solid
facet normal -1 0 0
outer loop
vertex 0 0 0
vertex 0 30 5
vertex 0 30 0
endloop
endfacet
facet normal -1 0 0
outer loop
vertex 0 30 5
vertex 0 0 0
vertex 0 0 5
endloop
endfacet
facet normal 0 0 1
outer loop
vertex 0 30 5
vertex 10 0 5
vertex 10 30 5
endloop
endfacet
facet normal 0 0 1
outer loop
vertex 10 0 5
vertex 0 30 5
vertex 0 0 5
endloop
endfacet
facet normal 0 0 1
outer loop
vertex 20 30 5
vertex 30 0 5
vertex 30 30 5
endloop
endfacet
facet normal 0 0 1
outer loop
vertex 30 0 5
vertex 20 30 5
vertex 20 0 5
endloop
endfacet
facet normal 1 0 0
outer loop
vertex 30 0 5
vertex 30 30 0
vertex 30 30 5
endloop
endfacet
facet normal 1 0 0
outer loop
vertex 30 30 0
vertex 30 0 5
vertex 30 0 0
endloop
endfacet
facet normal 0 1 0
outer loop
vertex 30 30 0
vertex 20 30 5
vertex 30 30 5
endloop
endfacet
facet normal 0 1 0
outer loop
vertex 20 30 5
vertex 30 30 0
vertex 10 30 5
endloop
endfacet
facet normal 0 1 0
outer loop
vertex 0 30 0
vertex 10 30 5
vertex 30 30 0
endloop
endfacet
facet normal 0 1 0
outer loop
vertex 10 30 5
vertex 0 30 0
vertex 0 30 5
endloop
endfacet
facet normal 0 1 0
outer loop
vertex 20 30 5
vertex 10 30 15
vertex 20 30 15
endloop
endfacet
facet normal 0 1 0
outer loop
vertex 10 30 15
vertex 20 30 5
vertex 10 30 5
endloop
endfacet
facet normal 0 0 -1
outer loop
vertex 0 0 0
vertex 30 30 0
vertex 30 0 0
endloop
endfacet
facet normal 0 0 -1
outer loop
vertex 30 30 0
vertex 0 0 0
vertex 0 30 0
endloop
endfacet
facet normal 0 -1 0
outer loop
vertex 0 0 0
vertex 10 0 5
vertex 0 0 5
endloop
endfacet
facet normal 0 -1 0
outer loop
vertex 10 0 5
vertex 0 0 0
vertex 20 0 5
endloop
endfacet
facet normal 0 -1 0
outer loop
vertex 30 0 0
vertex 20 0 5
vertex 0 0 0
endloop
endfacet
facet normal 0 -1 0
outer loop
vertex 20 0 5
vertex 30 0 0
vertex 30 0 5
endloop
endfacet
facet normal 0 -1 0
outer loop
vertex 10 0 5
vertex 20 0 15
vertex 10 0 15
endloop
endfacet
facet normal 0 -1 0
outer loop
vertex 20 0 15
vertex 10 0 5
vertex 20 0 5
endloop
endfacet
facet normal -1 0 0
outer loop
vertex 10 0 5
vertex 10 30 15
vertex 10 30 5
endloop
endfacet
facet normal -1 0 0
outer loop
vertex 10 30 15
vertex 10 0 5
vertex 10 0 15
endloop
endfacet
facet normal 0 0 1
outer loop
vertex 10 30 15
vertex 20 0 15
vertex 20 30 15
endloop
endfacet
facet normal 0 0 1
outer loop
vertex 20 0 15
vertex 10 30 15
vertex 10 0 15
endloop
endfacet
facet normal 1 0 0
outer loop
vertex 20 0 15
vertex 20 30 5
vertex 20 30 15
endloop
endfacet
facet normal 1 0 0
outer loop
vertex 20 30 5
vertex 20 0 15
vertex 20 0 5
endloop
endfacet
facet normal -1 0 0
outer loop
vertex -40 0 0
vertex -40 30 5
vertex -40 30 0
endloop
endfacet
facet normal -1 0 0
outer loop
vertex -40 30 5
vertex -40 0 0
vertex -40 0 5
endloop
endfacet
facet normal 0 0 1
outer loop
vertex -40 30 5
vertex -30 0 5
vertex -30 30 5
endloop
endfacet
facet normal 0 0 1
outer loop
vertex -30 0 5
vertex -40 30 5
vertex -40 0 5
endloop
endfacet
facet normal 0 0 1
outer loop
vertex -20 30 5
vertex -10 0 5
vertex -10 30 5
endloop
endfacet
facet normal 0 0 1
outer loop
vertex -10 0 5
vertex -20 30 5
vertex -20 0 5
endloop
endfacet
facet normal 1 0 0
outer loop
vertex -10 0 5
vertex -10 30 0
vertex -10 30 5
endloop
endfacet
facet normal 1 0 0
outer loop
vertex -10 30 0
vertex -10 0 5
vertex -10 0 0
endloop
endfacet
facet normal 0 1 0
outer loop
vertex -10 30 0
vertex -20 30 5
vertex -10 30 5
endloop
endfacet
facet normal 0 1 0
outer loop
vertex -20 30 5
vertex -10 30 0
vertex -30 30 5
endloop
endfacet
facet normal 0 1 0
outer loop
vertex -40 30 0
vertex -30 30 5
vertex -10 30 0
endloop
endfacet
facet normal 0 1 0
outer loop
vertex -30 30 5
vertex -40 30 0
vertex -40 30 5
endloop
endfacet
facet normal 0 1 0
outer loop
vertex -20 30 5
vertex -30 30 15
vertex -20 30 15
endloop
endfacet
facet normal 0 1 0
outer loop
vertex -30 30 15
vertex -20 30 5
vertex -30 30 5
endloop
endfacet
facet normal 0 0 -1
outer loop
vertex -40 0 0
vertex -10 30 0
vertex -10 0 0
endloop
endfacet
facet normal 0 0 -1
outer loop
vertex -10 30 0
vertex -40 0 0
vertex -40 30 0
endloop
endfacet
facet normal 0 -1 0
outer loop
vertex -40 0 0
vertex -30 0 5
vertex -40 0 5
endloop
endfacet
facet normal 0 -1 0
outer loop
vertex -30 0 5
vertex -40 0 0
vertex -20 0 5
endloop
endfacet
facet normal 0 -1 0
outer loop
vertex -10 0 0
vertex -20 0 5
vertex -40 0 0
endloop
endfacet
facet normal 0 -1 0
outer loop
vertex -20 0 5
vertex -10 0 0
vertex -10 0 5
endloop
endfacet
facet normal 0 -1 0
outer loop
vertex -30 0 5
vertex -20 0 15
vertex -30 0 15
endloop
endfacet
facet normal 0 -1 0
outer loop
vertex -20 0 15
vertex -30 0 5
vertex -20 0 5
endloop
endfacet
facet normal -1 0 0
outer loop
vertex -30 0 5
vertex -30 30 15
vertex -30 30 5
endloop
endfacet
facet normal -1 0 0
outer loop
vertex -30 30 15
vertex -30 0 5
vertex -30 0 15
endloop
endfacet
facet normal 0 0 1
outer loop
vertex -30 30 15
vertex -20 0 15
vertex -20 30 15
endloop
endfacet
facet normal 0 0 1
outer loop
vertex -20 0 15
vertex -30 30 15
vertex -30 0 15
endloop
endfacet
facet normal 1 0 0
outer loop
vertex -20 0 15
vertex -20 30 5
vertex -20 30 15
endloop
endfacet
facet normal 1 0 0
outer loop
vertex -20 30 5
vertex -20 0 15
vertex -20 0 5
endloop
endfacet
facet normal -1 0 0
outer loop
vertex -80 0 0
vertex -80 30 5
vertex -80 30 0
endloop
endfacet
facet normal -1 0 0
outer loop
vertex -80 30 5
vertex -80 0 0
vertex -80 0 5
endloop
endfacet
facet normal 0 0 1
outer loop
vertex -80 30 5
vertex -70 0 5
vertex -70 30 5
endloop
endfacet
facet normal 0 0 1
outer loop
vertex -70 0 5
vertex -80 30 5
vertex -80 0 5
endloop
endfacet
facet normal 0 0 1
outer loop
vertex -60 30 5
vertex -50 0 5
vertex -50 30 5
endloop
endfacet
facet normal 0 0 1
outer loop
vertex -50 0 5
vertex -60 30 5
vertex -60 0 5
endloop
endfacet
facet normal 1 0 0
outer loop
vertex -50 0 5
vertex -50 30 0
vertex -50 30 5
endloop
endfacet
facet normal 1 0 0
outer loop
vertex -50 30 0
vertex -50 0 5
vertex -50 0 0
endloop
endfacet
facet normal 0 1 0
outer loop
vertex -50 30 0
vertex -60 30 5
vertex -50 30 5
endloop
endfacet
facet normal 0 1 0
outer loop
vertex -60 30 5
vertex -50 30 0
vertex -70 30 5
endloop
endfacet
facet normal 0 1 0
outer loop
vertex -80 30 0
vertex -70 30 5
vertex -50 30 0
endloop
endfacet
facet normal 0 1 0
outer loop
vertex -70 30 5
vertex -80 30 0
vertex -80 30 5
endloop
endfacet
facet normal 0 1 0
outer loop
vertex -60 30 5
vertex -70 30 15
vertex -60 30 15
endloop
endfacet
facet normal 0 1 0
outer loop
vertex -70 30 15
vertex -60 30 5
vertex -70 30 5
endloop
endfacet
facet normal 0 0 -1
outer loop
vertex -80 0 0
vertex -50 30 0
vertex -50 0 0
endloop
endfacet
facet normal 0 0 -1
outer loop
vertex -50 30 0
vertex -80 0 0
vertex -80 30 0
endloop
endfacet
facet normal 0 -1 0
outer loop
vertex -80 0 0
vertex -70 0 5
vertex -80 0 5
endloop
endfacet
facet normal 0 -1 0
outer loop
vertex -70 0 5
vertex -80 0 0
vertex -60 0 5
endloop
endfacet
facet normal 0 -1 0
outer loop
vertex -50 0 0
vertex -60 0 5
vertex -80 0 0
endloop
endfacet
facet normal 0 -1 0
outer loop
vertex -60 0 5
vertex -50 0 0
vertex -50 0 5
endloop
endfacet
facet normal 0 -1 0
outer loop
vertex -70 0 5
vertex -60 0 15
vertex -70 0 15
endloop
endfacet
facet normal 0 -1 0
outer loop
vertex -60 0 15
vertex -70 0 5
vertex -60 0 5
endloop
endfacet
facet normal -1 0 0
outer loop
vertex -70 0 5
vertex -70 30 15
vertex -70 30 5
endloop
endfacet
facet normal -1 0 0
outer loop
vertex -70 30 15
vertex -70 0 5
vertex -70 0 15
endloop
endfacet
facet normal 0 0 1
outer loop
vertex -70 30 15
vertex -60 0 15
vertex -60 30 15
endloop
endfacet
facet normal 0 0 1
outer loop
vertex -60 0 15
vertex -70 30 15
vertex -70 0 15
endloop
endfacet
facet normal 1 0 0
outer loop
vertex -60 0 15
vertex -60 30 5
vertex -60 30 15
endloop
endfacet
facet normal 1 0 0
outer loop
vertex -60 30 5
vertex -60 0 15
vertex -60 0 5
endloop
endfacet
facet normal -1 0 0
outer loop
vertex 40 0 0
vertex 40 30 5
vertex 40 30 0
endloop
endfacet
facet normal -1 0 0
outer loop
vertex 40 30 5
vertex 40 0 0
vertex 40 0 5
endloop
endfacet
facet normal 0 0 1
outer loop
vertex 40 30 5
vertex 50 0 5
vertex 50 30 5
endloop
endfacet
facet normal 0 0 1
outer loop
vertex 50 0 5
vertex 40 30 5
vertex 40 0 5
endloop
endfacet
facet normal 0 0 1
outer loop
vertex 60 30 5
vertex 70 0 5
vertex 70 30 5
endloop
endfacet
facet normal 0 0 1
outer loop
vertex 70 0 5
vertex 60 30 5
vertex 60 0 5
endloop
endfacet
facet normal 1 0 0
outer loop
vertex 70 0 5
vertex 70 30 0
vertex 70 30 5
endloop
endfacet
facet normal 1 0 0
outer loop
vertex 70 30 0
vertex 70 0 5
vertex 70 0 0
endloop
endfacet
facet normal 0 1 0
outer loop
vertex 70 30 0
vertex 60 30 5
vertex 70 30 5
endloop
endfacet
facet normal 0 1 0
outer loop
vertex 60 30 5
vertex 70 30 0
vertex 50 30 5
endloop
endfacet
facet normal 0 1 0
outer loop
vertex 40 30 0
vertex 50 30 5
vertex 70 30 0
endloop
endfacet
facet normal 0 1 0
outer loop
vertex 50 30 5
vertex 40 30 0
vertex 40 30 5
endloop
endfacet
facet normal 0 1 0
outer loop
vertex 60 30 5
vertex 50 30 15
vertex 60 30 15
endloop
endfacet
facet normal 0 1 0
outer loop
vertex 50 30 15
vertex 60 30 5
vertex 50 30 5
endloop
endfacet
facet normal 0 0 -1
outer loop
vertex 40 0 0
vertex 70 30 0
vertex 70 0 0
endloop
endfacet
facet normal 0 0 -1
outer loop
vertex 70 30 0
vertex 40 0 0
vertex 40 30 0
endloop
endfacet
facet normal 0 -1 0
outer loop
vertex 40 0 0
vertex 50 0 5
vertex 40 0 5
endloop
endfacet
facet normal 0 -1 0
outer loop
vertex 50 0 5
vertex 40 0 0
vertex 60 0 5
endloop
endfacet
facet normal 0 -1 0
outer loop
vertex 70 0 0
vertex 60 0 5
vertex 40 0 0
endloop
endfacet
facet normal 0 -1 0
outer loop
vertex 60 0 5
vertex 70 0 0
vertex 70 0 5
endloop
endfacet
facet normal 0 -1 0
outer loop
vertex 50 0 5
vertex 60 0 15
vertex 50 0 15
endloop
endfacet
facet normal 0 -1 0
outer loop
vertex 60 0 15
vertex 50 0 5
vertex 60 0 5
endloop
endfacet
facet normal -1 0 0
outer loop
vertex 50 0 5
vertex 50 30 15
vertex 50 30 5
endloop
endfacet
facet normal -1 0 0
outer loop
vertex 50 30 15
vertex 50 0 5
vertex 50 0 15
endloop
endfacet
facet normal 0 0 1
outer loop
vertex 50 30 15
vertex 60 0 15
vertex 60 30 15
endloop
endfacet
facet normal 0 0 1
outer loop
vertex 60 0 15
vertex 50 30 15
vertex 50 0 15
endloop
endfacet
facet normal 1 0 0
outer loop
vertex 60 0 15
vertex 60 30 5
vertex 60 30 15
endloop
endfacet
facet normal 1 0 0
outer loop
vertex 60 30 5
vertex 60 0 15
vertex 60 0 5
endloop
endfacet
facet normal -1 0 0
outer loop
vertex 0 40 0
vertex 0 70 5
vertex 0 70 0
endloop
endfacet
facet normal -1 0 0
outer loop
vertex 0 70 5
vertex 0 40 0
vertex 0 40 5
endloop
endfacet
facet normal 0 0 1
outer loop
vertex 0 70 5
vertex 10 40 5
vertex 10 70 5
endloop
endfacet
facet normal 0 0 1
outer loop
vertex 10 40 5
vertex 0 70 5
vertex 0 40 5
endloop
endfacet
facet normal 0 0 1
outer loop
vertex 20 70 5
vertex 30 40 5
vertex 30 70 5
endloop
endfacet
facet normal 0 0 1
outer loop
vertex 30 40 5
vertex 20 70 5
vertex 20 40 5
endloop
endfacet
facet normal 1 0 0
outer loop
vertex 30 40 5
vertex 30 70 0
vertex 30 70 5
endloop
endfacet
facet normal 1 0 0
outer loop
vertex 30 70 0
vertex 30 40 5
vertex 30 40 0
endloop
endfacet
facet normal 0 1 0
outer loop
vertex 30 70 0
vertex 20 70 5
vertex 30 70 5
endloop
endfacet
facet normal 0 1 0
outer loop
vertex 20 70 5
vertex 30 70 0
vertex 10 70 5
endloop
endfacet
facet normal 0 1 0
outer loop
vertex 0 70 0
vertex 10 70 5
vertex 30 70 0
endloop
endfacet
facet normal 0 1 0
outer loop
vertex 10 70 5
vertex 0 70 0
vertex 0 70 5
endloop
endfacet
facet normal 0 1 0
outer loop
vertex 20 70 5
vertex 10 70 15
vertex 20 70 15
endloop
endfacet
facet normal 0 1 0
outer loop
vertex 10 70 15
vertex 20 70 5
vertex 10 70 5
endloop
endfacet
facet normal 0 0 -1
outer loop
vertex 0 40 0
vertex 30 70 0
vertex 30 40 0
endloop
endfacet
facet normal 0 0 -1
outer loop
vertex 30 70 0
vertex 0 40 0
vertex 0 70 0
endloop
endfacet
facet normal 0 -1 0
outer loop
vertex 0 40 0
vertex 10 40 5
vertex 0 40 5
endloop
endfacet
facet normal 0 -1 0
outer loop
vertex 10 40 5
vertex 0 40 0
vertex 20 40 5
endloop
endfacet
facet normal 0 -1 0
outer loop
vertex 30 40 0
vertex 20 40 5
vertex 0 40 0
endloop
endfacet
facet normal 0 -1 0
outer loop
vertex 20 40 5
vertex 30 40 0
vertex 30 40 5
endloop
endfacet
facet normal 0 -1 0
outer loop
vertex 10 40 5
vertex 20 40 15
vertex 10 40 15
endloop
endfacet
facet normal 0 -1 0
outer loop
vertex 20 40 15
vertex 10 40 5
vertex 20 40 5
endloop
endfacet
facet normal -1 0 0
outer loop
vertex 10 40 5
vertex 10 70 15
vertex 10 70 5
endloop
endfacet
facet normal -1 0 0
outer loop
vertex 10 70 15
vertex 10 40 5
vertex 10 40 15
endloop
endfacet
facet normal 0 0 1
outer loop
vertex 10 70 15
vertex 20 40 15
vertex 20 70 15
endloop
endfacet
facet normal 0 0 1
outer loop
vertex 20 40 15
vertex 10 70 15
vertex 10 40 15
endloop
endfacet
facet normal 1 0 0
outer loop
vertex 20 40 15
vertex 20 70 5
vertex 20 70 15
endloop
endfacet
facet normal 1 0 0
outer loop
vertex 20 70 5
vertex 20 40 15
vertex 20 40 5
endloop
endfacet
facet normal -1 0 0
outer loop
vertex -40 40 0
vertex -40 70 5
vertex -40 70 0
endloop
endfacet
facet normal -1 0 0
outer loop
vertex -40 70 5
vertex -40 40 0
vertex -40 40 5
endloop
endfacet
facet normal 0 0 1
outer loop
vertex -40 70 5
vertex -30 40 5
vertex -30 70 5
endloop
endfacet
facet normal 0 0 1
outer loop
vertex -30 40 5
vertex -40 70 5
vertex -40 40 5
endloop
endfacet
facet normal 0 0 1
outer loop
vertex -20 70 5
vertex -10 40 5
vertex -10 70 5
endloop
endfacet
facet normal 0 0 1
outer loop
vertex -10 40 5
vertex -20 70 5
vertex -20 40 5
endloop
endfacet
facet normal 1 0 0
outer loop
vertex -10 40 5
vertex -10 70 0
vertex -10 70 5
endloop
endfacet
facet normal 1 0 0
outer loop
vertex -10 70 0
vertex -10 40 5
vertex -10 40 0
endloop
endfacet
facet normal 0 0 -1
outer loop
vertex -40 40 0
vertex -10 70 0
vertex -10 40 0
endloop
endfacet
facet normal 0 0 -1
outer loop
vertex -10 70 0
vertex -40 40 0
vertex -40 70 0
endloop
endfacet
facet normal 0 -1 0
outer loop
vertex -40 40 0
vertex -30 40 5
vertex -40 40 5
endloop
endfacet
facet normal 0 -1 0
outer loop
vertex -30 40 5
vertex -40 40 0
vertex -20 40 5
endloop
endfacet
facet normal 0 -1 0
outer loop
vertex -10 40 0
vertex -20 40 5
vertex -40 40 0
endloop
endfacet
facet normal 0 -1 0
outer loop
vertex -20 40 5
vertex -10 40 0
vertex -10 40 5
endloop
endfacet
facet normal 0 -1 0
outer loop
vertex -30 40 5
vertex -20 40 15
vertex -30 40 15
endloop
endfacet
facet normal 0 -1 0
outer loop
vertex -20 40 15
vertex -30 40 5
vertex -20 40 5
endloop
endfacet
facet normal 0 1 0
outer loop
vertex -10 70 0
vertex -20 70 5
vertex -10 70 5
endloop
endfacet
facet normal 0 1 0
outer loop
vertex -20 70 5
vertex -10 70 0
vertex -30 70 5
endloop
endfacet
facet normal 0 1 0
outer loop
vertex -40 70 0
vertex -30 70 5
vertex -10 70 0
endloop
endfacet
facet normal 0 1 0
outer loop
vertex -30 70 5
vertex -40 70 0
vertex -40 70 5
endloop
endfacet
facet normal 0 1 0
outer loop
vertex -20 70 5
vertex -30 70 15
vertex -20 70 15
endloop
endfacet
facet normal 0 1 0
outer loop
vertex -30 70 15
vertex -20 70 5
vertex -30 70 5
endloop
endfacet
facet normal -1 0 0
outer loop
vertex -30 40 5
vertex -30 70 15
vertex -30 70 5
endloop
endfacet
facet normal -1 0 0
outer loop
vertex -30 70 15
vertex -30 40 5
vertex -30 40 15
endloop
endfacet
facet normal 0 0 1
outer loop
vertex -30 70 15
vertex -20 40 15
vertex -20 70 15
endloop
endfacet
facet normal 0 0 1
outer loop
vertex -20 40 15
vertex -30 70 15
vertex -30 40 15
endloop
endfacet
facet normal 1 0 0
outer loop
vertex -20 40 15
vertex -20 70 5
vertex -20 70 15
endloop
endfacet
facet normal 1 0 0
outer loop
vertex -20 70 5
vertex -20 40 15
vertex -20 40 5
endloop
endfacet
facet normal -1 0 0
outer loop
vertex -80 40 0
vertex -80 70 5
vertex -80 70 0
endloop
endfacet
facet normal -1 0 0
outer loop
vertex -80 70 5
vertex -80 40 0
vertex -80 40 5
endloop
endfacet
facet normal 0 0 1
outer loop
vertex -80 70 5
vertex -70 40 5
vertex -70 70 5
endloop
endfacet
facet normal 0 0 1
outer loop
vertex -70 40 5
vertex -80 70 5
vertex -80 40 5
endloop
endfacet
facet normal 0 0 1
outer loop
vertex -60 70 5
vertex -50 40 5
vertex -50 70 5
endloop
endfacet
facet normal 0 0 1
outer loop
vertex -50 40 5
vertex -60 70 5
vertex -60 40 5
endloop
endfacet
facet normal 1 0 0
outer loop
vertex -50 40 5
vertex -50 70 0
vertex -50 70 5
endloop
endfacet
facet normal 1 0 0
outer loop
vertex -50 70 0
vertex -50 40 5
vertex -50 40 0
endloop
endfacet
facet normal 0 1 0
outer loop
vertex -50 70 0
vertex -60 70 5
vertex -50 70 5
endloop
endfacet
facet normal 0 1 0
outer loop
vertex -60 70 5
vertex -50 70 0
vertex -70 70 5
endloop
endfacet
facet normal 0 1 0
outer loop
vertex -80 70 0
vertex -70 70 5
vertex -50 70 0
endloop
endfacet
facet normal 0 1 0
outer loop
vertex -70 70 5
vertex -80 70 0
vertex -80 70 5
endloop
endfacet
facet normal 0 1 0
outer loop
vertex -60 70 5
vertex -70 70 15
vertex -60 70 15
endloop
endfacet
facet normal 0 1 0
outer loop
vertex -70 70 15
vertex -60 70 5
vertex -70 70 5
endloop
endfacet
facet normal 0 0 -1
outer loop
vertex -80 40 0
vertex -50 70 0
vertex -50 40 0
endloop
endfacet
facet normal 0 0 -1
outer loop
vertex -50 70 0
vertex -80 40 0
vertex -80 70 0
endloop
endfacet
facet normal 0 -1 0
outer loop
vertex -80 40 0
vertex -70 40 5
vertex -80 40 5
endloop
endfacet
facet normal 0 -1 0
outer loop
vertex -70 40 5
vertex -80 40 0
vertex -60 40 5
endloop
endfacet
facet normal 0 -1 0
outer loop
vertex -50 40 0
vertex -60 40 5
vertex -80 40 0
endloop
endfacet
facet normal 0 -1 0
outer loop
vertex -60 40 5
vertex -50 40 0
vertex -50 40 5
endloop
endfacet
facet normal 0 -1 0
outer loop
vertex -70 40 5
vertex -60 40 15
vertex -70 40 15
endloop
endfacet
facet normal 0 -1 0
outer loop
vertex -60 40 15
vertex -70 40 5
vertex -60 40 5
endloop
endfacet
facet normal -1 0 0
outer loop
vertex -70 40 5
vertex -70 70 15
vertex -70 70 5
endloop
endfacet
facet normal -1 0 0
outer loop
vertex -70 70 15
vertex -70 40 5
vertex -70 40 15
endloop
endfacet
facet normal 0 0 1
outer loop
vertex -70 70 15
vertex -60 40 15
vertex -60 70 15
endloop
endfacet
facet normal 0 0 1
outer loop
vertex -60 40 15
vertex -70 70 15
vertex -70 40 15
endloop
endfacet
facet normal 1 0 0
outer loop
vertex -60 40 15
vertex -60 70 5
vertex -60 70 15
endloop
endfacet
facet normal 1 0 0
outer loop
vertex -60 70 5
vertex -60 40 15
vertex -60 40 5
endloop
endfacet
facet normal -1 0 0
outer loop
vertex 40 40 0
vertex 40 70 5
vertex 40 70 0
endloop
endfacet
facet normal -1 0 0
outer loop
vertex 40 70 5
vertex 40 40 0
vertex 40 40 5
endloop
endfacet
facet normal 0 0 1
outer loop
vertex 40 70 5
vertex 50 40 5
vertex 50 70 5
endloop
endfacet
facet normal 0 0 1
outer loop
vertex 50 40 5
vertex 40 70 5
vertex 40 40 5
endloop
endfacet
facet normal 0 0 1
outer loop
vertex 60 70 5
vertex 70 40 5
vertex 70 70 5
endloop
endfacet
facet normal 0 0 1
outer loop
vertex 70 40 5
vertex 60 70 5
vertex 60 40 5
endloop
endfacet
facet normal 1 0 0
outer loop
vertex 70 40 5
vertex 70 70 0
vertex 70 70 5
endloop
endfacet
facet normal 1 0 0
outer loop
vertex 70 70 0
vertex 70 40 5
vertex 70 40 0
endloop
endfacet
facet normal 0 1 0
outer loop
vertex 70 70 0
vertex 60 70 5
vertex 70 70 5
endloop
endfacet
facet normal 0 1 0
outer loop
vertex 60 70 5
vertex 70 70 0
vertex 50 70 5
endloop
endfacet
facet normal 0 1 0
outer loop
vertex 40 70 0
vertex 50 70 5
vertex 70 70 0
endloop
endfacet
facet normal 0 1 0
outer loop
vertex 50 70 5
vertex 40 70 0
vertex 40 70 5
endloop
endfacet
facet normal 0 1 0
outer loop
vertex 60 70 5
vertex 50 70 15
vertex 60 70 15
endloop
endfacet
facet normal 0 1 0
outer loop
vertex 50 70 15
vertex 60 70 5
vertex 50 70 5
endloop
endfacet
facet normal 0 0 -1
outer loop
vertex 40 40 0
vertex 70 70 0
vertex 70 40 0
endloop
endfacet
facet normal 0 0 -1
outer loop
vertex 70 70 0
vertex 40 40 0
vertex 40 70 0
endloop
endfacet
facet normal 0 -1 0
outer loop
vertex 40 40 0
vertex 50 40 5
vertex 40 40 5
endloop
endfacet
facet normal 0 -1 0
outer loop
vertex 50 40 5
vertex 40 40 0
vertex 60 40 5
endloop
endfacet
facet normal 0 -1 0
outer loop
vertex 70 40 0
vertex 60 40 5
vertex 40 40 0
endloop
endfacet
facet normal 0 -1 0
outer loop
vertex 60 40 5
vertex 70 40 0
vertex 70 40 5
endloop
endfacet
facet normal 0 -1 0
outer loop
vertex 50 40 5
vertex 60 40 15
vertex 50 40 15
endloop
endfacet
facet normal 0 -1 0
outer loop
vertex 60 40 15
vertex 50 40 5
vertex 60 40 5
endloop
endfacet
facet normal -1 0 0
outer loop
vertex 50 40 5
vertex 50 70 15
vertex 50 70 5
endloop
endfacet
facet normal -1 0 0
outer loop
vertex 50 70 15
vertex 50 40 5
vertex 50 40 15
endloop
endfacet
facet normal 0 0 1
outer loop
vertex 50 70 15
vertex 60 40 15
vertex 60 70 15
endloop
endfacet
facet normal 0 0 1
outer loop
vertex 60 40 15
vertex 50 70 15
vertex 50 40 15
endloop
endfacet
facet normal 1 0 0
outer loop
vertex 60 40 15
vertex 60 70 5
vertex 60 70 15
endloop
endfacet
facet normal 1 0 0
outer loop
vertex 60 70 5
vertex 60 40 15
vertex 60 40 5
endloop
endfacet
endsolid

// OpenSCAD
module holder(x = 0, y = 0) {
    translate([x,y,0]) {
        cube([30,30,5]);
        translate([10,0,5]) cube([10,30,10]);
    }
}

holder(0,0);
holder(-40,0);
holder(-80,0);
holder(40,0);

holder(0,40);
holder(-40,40);
holder(-80,40);
holder(40,40);
